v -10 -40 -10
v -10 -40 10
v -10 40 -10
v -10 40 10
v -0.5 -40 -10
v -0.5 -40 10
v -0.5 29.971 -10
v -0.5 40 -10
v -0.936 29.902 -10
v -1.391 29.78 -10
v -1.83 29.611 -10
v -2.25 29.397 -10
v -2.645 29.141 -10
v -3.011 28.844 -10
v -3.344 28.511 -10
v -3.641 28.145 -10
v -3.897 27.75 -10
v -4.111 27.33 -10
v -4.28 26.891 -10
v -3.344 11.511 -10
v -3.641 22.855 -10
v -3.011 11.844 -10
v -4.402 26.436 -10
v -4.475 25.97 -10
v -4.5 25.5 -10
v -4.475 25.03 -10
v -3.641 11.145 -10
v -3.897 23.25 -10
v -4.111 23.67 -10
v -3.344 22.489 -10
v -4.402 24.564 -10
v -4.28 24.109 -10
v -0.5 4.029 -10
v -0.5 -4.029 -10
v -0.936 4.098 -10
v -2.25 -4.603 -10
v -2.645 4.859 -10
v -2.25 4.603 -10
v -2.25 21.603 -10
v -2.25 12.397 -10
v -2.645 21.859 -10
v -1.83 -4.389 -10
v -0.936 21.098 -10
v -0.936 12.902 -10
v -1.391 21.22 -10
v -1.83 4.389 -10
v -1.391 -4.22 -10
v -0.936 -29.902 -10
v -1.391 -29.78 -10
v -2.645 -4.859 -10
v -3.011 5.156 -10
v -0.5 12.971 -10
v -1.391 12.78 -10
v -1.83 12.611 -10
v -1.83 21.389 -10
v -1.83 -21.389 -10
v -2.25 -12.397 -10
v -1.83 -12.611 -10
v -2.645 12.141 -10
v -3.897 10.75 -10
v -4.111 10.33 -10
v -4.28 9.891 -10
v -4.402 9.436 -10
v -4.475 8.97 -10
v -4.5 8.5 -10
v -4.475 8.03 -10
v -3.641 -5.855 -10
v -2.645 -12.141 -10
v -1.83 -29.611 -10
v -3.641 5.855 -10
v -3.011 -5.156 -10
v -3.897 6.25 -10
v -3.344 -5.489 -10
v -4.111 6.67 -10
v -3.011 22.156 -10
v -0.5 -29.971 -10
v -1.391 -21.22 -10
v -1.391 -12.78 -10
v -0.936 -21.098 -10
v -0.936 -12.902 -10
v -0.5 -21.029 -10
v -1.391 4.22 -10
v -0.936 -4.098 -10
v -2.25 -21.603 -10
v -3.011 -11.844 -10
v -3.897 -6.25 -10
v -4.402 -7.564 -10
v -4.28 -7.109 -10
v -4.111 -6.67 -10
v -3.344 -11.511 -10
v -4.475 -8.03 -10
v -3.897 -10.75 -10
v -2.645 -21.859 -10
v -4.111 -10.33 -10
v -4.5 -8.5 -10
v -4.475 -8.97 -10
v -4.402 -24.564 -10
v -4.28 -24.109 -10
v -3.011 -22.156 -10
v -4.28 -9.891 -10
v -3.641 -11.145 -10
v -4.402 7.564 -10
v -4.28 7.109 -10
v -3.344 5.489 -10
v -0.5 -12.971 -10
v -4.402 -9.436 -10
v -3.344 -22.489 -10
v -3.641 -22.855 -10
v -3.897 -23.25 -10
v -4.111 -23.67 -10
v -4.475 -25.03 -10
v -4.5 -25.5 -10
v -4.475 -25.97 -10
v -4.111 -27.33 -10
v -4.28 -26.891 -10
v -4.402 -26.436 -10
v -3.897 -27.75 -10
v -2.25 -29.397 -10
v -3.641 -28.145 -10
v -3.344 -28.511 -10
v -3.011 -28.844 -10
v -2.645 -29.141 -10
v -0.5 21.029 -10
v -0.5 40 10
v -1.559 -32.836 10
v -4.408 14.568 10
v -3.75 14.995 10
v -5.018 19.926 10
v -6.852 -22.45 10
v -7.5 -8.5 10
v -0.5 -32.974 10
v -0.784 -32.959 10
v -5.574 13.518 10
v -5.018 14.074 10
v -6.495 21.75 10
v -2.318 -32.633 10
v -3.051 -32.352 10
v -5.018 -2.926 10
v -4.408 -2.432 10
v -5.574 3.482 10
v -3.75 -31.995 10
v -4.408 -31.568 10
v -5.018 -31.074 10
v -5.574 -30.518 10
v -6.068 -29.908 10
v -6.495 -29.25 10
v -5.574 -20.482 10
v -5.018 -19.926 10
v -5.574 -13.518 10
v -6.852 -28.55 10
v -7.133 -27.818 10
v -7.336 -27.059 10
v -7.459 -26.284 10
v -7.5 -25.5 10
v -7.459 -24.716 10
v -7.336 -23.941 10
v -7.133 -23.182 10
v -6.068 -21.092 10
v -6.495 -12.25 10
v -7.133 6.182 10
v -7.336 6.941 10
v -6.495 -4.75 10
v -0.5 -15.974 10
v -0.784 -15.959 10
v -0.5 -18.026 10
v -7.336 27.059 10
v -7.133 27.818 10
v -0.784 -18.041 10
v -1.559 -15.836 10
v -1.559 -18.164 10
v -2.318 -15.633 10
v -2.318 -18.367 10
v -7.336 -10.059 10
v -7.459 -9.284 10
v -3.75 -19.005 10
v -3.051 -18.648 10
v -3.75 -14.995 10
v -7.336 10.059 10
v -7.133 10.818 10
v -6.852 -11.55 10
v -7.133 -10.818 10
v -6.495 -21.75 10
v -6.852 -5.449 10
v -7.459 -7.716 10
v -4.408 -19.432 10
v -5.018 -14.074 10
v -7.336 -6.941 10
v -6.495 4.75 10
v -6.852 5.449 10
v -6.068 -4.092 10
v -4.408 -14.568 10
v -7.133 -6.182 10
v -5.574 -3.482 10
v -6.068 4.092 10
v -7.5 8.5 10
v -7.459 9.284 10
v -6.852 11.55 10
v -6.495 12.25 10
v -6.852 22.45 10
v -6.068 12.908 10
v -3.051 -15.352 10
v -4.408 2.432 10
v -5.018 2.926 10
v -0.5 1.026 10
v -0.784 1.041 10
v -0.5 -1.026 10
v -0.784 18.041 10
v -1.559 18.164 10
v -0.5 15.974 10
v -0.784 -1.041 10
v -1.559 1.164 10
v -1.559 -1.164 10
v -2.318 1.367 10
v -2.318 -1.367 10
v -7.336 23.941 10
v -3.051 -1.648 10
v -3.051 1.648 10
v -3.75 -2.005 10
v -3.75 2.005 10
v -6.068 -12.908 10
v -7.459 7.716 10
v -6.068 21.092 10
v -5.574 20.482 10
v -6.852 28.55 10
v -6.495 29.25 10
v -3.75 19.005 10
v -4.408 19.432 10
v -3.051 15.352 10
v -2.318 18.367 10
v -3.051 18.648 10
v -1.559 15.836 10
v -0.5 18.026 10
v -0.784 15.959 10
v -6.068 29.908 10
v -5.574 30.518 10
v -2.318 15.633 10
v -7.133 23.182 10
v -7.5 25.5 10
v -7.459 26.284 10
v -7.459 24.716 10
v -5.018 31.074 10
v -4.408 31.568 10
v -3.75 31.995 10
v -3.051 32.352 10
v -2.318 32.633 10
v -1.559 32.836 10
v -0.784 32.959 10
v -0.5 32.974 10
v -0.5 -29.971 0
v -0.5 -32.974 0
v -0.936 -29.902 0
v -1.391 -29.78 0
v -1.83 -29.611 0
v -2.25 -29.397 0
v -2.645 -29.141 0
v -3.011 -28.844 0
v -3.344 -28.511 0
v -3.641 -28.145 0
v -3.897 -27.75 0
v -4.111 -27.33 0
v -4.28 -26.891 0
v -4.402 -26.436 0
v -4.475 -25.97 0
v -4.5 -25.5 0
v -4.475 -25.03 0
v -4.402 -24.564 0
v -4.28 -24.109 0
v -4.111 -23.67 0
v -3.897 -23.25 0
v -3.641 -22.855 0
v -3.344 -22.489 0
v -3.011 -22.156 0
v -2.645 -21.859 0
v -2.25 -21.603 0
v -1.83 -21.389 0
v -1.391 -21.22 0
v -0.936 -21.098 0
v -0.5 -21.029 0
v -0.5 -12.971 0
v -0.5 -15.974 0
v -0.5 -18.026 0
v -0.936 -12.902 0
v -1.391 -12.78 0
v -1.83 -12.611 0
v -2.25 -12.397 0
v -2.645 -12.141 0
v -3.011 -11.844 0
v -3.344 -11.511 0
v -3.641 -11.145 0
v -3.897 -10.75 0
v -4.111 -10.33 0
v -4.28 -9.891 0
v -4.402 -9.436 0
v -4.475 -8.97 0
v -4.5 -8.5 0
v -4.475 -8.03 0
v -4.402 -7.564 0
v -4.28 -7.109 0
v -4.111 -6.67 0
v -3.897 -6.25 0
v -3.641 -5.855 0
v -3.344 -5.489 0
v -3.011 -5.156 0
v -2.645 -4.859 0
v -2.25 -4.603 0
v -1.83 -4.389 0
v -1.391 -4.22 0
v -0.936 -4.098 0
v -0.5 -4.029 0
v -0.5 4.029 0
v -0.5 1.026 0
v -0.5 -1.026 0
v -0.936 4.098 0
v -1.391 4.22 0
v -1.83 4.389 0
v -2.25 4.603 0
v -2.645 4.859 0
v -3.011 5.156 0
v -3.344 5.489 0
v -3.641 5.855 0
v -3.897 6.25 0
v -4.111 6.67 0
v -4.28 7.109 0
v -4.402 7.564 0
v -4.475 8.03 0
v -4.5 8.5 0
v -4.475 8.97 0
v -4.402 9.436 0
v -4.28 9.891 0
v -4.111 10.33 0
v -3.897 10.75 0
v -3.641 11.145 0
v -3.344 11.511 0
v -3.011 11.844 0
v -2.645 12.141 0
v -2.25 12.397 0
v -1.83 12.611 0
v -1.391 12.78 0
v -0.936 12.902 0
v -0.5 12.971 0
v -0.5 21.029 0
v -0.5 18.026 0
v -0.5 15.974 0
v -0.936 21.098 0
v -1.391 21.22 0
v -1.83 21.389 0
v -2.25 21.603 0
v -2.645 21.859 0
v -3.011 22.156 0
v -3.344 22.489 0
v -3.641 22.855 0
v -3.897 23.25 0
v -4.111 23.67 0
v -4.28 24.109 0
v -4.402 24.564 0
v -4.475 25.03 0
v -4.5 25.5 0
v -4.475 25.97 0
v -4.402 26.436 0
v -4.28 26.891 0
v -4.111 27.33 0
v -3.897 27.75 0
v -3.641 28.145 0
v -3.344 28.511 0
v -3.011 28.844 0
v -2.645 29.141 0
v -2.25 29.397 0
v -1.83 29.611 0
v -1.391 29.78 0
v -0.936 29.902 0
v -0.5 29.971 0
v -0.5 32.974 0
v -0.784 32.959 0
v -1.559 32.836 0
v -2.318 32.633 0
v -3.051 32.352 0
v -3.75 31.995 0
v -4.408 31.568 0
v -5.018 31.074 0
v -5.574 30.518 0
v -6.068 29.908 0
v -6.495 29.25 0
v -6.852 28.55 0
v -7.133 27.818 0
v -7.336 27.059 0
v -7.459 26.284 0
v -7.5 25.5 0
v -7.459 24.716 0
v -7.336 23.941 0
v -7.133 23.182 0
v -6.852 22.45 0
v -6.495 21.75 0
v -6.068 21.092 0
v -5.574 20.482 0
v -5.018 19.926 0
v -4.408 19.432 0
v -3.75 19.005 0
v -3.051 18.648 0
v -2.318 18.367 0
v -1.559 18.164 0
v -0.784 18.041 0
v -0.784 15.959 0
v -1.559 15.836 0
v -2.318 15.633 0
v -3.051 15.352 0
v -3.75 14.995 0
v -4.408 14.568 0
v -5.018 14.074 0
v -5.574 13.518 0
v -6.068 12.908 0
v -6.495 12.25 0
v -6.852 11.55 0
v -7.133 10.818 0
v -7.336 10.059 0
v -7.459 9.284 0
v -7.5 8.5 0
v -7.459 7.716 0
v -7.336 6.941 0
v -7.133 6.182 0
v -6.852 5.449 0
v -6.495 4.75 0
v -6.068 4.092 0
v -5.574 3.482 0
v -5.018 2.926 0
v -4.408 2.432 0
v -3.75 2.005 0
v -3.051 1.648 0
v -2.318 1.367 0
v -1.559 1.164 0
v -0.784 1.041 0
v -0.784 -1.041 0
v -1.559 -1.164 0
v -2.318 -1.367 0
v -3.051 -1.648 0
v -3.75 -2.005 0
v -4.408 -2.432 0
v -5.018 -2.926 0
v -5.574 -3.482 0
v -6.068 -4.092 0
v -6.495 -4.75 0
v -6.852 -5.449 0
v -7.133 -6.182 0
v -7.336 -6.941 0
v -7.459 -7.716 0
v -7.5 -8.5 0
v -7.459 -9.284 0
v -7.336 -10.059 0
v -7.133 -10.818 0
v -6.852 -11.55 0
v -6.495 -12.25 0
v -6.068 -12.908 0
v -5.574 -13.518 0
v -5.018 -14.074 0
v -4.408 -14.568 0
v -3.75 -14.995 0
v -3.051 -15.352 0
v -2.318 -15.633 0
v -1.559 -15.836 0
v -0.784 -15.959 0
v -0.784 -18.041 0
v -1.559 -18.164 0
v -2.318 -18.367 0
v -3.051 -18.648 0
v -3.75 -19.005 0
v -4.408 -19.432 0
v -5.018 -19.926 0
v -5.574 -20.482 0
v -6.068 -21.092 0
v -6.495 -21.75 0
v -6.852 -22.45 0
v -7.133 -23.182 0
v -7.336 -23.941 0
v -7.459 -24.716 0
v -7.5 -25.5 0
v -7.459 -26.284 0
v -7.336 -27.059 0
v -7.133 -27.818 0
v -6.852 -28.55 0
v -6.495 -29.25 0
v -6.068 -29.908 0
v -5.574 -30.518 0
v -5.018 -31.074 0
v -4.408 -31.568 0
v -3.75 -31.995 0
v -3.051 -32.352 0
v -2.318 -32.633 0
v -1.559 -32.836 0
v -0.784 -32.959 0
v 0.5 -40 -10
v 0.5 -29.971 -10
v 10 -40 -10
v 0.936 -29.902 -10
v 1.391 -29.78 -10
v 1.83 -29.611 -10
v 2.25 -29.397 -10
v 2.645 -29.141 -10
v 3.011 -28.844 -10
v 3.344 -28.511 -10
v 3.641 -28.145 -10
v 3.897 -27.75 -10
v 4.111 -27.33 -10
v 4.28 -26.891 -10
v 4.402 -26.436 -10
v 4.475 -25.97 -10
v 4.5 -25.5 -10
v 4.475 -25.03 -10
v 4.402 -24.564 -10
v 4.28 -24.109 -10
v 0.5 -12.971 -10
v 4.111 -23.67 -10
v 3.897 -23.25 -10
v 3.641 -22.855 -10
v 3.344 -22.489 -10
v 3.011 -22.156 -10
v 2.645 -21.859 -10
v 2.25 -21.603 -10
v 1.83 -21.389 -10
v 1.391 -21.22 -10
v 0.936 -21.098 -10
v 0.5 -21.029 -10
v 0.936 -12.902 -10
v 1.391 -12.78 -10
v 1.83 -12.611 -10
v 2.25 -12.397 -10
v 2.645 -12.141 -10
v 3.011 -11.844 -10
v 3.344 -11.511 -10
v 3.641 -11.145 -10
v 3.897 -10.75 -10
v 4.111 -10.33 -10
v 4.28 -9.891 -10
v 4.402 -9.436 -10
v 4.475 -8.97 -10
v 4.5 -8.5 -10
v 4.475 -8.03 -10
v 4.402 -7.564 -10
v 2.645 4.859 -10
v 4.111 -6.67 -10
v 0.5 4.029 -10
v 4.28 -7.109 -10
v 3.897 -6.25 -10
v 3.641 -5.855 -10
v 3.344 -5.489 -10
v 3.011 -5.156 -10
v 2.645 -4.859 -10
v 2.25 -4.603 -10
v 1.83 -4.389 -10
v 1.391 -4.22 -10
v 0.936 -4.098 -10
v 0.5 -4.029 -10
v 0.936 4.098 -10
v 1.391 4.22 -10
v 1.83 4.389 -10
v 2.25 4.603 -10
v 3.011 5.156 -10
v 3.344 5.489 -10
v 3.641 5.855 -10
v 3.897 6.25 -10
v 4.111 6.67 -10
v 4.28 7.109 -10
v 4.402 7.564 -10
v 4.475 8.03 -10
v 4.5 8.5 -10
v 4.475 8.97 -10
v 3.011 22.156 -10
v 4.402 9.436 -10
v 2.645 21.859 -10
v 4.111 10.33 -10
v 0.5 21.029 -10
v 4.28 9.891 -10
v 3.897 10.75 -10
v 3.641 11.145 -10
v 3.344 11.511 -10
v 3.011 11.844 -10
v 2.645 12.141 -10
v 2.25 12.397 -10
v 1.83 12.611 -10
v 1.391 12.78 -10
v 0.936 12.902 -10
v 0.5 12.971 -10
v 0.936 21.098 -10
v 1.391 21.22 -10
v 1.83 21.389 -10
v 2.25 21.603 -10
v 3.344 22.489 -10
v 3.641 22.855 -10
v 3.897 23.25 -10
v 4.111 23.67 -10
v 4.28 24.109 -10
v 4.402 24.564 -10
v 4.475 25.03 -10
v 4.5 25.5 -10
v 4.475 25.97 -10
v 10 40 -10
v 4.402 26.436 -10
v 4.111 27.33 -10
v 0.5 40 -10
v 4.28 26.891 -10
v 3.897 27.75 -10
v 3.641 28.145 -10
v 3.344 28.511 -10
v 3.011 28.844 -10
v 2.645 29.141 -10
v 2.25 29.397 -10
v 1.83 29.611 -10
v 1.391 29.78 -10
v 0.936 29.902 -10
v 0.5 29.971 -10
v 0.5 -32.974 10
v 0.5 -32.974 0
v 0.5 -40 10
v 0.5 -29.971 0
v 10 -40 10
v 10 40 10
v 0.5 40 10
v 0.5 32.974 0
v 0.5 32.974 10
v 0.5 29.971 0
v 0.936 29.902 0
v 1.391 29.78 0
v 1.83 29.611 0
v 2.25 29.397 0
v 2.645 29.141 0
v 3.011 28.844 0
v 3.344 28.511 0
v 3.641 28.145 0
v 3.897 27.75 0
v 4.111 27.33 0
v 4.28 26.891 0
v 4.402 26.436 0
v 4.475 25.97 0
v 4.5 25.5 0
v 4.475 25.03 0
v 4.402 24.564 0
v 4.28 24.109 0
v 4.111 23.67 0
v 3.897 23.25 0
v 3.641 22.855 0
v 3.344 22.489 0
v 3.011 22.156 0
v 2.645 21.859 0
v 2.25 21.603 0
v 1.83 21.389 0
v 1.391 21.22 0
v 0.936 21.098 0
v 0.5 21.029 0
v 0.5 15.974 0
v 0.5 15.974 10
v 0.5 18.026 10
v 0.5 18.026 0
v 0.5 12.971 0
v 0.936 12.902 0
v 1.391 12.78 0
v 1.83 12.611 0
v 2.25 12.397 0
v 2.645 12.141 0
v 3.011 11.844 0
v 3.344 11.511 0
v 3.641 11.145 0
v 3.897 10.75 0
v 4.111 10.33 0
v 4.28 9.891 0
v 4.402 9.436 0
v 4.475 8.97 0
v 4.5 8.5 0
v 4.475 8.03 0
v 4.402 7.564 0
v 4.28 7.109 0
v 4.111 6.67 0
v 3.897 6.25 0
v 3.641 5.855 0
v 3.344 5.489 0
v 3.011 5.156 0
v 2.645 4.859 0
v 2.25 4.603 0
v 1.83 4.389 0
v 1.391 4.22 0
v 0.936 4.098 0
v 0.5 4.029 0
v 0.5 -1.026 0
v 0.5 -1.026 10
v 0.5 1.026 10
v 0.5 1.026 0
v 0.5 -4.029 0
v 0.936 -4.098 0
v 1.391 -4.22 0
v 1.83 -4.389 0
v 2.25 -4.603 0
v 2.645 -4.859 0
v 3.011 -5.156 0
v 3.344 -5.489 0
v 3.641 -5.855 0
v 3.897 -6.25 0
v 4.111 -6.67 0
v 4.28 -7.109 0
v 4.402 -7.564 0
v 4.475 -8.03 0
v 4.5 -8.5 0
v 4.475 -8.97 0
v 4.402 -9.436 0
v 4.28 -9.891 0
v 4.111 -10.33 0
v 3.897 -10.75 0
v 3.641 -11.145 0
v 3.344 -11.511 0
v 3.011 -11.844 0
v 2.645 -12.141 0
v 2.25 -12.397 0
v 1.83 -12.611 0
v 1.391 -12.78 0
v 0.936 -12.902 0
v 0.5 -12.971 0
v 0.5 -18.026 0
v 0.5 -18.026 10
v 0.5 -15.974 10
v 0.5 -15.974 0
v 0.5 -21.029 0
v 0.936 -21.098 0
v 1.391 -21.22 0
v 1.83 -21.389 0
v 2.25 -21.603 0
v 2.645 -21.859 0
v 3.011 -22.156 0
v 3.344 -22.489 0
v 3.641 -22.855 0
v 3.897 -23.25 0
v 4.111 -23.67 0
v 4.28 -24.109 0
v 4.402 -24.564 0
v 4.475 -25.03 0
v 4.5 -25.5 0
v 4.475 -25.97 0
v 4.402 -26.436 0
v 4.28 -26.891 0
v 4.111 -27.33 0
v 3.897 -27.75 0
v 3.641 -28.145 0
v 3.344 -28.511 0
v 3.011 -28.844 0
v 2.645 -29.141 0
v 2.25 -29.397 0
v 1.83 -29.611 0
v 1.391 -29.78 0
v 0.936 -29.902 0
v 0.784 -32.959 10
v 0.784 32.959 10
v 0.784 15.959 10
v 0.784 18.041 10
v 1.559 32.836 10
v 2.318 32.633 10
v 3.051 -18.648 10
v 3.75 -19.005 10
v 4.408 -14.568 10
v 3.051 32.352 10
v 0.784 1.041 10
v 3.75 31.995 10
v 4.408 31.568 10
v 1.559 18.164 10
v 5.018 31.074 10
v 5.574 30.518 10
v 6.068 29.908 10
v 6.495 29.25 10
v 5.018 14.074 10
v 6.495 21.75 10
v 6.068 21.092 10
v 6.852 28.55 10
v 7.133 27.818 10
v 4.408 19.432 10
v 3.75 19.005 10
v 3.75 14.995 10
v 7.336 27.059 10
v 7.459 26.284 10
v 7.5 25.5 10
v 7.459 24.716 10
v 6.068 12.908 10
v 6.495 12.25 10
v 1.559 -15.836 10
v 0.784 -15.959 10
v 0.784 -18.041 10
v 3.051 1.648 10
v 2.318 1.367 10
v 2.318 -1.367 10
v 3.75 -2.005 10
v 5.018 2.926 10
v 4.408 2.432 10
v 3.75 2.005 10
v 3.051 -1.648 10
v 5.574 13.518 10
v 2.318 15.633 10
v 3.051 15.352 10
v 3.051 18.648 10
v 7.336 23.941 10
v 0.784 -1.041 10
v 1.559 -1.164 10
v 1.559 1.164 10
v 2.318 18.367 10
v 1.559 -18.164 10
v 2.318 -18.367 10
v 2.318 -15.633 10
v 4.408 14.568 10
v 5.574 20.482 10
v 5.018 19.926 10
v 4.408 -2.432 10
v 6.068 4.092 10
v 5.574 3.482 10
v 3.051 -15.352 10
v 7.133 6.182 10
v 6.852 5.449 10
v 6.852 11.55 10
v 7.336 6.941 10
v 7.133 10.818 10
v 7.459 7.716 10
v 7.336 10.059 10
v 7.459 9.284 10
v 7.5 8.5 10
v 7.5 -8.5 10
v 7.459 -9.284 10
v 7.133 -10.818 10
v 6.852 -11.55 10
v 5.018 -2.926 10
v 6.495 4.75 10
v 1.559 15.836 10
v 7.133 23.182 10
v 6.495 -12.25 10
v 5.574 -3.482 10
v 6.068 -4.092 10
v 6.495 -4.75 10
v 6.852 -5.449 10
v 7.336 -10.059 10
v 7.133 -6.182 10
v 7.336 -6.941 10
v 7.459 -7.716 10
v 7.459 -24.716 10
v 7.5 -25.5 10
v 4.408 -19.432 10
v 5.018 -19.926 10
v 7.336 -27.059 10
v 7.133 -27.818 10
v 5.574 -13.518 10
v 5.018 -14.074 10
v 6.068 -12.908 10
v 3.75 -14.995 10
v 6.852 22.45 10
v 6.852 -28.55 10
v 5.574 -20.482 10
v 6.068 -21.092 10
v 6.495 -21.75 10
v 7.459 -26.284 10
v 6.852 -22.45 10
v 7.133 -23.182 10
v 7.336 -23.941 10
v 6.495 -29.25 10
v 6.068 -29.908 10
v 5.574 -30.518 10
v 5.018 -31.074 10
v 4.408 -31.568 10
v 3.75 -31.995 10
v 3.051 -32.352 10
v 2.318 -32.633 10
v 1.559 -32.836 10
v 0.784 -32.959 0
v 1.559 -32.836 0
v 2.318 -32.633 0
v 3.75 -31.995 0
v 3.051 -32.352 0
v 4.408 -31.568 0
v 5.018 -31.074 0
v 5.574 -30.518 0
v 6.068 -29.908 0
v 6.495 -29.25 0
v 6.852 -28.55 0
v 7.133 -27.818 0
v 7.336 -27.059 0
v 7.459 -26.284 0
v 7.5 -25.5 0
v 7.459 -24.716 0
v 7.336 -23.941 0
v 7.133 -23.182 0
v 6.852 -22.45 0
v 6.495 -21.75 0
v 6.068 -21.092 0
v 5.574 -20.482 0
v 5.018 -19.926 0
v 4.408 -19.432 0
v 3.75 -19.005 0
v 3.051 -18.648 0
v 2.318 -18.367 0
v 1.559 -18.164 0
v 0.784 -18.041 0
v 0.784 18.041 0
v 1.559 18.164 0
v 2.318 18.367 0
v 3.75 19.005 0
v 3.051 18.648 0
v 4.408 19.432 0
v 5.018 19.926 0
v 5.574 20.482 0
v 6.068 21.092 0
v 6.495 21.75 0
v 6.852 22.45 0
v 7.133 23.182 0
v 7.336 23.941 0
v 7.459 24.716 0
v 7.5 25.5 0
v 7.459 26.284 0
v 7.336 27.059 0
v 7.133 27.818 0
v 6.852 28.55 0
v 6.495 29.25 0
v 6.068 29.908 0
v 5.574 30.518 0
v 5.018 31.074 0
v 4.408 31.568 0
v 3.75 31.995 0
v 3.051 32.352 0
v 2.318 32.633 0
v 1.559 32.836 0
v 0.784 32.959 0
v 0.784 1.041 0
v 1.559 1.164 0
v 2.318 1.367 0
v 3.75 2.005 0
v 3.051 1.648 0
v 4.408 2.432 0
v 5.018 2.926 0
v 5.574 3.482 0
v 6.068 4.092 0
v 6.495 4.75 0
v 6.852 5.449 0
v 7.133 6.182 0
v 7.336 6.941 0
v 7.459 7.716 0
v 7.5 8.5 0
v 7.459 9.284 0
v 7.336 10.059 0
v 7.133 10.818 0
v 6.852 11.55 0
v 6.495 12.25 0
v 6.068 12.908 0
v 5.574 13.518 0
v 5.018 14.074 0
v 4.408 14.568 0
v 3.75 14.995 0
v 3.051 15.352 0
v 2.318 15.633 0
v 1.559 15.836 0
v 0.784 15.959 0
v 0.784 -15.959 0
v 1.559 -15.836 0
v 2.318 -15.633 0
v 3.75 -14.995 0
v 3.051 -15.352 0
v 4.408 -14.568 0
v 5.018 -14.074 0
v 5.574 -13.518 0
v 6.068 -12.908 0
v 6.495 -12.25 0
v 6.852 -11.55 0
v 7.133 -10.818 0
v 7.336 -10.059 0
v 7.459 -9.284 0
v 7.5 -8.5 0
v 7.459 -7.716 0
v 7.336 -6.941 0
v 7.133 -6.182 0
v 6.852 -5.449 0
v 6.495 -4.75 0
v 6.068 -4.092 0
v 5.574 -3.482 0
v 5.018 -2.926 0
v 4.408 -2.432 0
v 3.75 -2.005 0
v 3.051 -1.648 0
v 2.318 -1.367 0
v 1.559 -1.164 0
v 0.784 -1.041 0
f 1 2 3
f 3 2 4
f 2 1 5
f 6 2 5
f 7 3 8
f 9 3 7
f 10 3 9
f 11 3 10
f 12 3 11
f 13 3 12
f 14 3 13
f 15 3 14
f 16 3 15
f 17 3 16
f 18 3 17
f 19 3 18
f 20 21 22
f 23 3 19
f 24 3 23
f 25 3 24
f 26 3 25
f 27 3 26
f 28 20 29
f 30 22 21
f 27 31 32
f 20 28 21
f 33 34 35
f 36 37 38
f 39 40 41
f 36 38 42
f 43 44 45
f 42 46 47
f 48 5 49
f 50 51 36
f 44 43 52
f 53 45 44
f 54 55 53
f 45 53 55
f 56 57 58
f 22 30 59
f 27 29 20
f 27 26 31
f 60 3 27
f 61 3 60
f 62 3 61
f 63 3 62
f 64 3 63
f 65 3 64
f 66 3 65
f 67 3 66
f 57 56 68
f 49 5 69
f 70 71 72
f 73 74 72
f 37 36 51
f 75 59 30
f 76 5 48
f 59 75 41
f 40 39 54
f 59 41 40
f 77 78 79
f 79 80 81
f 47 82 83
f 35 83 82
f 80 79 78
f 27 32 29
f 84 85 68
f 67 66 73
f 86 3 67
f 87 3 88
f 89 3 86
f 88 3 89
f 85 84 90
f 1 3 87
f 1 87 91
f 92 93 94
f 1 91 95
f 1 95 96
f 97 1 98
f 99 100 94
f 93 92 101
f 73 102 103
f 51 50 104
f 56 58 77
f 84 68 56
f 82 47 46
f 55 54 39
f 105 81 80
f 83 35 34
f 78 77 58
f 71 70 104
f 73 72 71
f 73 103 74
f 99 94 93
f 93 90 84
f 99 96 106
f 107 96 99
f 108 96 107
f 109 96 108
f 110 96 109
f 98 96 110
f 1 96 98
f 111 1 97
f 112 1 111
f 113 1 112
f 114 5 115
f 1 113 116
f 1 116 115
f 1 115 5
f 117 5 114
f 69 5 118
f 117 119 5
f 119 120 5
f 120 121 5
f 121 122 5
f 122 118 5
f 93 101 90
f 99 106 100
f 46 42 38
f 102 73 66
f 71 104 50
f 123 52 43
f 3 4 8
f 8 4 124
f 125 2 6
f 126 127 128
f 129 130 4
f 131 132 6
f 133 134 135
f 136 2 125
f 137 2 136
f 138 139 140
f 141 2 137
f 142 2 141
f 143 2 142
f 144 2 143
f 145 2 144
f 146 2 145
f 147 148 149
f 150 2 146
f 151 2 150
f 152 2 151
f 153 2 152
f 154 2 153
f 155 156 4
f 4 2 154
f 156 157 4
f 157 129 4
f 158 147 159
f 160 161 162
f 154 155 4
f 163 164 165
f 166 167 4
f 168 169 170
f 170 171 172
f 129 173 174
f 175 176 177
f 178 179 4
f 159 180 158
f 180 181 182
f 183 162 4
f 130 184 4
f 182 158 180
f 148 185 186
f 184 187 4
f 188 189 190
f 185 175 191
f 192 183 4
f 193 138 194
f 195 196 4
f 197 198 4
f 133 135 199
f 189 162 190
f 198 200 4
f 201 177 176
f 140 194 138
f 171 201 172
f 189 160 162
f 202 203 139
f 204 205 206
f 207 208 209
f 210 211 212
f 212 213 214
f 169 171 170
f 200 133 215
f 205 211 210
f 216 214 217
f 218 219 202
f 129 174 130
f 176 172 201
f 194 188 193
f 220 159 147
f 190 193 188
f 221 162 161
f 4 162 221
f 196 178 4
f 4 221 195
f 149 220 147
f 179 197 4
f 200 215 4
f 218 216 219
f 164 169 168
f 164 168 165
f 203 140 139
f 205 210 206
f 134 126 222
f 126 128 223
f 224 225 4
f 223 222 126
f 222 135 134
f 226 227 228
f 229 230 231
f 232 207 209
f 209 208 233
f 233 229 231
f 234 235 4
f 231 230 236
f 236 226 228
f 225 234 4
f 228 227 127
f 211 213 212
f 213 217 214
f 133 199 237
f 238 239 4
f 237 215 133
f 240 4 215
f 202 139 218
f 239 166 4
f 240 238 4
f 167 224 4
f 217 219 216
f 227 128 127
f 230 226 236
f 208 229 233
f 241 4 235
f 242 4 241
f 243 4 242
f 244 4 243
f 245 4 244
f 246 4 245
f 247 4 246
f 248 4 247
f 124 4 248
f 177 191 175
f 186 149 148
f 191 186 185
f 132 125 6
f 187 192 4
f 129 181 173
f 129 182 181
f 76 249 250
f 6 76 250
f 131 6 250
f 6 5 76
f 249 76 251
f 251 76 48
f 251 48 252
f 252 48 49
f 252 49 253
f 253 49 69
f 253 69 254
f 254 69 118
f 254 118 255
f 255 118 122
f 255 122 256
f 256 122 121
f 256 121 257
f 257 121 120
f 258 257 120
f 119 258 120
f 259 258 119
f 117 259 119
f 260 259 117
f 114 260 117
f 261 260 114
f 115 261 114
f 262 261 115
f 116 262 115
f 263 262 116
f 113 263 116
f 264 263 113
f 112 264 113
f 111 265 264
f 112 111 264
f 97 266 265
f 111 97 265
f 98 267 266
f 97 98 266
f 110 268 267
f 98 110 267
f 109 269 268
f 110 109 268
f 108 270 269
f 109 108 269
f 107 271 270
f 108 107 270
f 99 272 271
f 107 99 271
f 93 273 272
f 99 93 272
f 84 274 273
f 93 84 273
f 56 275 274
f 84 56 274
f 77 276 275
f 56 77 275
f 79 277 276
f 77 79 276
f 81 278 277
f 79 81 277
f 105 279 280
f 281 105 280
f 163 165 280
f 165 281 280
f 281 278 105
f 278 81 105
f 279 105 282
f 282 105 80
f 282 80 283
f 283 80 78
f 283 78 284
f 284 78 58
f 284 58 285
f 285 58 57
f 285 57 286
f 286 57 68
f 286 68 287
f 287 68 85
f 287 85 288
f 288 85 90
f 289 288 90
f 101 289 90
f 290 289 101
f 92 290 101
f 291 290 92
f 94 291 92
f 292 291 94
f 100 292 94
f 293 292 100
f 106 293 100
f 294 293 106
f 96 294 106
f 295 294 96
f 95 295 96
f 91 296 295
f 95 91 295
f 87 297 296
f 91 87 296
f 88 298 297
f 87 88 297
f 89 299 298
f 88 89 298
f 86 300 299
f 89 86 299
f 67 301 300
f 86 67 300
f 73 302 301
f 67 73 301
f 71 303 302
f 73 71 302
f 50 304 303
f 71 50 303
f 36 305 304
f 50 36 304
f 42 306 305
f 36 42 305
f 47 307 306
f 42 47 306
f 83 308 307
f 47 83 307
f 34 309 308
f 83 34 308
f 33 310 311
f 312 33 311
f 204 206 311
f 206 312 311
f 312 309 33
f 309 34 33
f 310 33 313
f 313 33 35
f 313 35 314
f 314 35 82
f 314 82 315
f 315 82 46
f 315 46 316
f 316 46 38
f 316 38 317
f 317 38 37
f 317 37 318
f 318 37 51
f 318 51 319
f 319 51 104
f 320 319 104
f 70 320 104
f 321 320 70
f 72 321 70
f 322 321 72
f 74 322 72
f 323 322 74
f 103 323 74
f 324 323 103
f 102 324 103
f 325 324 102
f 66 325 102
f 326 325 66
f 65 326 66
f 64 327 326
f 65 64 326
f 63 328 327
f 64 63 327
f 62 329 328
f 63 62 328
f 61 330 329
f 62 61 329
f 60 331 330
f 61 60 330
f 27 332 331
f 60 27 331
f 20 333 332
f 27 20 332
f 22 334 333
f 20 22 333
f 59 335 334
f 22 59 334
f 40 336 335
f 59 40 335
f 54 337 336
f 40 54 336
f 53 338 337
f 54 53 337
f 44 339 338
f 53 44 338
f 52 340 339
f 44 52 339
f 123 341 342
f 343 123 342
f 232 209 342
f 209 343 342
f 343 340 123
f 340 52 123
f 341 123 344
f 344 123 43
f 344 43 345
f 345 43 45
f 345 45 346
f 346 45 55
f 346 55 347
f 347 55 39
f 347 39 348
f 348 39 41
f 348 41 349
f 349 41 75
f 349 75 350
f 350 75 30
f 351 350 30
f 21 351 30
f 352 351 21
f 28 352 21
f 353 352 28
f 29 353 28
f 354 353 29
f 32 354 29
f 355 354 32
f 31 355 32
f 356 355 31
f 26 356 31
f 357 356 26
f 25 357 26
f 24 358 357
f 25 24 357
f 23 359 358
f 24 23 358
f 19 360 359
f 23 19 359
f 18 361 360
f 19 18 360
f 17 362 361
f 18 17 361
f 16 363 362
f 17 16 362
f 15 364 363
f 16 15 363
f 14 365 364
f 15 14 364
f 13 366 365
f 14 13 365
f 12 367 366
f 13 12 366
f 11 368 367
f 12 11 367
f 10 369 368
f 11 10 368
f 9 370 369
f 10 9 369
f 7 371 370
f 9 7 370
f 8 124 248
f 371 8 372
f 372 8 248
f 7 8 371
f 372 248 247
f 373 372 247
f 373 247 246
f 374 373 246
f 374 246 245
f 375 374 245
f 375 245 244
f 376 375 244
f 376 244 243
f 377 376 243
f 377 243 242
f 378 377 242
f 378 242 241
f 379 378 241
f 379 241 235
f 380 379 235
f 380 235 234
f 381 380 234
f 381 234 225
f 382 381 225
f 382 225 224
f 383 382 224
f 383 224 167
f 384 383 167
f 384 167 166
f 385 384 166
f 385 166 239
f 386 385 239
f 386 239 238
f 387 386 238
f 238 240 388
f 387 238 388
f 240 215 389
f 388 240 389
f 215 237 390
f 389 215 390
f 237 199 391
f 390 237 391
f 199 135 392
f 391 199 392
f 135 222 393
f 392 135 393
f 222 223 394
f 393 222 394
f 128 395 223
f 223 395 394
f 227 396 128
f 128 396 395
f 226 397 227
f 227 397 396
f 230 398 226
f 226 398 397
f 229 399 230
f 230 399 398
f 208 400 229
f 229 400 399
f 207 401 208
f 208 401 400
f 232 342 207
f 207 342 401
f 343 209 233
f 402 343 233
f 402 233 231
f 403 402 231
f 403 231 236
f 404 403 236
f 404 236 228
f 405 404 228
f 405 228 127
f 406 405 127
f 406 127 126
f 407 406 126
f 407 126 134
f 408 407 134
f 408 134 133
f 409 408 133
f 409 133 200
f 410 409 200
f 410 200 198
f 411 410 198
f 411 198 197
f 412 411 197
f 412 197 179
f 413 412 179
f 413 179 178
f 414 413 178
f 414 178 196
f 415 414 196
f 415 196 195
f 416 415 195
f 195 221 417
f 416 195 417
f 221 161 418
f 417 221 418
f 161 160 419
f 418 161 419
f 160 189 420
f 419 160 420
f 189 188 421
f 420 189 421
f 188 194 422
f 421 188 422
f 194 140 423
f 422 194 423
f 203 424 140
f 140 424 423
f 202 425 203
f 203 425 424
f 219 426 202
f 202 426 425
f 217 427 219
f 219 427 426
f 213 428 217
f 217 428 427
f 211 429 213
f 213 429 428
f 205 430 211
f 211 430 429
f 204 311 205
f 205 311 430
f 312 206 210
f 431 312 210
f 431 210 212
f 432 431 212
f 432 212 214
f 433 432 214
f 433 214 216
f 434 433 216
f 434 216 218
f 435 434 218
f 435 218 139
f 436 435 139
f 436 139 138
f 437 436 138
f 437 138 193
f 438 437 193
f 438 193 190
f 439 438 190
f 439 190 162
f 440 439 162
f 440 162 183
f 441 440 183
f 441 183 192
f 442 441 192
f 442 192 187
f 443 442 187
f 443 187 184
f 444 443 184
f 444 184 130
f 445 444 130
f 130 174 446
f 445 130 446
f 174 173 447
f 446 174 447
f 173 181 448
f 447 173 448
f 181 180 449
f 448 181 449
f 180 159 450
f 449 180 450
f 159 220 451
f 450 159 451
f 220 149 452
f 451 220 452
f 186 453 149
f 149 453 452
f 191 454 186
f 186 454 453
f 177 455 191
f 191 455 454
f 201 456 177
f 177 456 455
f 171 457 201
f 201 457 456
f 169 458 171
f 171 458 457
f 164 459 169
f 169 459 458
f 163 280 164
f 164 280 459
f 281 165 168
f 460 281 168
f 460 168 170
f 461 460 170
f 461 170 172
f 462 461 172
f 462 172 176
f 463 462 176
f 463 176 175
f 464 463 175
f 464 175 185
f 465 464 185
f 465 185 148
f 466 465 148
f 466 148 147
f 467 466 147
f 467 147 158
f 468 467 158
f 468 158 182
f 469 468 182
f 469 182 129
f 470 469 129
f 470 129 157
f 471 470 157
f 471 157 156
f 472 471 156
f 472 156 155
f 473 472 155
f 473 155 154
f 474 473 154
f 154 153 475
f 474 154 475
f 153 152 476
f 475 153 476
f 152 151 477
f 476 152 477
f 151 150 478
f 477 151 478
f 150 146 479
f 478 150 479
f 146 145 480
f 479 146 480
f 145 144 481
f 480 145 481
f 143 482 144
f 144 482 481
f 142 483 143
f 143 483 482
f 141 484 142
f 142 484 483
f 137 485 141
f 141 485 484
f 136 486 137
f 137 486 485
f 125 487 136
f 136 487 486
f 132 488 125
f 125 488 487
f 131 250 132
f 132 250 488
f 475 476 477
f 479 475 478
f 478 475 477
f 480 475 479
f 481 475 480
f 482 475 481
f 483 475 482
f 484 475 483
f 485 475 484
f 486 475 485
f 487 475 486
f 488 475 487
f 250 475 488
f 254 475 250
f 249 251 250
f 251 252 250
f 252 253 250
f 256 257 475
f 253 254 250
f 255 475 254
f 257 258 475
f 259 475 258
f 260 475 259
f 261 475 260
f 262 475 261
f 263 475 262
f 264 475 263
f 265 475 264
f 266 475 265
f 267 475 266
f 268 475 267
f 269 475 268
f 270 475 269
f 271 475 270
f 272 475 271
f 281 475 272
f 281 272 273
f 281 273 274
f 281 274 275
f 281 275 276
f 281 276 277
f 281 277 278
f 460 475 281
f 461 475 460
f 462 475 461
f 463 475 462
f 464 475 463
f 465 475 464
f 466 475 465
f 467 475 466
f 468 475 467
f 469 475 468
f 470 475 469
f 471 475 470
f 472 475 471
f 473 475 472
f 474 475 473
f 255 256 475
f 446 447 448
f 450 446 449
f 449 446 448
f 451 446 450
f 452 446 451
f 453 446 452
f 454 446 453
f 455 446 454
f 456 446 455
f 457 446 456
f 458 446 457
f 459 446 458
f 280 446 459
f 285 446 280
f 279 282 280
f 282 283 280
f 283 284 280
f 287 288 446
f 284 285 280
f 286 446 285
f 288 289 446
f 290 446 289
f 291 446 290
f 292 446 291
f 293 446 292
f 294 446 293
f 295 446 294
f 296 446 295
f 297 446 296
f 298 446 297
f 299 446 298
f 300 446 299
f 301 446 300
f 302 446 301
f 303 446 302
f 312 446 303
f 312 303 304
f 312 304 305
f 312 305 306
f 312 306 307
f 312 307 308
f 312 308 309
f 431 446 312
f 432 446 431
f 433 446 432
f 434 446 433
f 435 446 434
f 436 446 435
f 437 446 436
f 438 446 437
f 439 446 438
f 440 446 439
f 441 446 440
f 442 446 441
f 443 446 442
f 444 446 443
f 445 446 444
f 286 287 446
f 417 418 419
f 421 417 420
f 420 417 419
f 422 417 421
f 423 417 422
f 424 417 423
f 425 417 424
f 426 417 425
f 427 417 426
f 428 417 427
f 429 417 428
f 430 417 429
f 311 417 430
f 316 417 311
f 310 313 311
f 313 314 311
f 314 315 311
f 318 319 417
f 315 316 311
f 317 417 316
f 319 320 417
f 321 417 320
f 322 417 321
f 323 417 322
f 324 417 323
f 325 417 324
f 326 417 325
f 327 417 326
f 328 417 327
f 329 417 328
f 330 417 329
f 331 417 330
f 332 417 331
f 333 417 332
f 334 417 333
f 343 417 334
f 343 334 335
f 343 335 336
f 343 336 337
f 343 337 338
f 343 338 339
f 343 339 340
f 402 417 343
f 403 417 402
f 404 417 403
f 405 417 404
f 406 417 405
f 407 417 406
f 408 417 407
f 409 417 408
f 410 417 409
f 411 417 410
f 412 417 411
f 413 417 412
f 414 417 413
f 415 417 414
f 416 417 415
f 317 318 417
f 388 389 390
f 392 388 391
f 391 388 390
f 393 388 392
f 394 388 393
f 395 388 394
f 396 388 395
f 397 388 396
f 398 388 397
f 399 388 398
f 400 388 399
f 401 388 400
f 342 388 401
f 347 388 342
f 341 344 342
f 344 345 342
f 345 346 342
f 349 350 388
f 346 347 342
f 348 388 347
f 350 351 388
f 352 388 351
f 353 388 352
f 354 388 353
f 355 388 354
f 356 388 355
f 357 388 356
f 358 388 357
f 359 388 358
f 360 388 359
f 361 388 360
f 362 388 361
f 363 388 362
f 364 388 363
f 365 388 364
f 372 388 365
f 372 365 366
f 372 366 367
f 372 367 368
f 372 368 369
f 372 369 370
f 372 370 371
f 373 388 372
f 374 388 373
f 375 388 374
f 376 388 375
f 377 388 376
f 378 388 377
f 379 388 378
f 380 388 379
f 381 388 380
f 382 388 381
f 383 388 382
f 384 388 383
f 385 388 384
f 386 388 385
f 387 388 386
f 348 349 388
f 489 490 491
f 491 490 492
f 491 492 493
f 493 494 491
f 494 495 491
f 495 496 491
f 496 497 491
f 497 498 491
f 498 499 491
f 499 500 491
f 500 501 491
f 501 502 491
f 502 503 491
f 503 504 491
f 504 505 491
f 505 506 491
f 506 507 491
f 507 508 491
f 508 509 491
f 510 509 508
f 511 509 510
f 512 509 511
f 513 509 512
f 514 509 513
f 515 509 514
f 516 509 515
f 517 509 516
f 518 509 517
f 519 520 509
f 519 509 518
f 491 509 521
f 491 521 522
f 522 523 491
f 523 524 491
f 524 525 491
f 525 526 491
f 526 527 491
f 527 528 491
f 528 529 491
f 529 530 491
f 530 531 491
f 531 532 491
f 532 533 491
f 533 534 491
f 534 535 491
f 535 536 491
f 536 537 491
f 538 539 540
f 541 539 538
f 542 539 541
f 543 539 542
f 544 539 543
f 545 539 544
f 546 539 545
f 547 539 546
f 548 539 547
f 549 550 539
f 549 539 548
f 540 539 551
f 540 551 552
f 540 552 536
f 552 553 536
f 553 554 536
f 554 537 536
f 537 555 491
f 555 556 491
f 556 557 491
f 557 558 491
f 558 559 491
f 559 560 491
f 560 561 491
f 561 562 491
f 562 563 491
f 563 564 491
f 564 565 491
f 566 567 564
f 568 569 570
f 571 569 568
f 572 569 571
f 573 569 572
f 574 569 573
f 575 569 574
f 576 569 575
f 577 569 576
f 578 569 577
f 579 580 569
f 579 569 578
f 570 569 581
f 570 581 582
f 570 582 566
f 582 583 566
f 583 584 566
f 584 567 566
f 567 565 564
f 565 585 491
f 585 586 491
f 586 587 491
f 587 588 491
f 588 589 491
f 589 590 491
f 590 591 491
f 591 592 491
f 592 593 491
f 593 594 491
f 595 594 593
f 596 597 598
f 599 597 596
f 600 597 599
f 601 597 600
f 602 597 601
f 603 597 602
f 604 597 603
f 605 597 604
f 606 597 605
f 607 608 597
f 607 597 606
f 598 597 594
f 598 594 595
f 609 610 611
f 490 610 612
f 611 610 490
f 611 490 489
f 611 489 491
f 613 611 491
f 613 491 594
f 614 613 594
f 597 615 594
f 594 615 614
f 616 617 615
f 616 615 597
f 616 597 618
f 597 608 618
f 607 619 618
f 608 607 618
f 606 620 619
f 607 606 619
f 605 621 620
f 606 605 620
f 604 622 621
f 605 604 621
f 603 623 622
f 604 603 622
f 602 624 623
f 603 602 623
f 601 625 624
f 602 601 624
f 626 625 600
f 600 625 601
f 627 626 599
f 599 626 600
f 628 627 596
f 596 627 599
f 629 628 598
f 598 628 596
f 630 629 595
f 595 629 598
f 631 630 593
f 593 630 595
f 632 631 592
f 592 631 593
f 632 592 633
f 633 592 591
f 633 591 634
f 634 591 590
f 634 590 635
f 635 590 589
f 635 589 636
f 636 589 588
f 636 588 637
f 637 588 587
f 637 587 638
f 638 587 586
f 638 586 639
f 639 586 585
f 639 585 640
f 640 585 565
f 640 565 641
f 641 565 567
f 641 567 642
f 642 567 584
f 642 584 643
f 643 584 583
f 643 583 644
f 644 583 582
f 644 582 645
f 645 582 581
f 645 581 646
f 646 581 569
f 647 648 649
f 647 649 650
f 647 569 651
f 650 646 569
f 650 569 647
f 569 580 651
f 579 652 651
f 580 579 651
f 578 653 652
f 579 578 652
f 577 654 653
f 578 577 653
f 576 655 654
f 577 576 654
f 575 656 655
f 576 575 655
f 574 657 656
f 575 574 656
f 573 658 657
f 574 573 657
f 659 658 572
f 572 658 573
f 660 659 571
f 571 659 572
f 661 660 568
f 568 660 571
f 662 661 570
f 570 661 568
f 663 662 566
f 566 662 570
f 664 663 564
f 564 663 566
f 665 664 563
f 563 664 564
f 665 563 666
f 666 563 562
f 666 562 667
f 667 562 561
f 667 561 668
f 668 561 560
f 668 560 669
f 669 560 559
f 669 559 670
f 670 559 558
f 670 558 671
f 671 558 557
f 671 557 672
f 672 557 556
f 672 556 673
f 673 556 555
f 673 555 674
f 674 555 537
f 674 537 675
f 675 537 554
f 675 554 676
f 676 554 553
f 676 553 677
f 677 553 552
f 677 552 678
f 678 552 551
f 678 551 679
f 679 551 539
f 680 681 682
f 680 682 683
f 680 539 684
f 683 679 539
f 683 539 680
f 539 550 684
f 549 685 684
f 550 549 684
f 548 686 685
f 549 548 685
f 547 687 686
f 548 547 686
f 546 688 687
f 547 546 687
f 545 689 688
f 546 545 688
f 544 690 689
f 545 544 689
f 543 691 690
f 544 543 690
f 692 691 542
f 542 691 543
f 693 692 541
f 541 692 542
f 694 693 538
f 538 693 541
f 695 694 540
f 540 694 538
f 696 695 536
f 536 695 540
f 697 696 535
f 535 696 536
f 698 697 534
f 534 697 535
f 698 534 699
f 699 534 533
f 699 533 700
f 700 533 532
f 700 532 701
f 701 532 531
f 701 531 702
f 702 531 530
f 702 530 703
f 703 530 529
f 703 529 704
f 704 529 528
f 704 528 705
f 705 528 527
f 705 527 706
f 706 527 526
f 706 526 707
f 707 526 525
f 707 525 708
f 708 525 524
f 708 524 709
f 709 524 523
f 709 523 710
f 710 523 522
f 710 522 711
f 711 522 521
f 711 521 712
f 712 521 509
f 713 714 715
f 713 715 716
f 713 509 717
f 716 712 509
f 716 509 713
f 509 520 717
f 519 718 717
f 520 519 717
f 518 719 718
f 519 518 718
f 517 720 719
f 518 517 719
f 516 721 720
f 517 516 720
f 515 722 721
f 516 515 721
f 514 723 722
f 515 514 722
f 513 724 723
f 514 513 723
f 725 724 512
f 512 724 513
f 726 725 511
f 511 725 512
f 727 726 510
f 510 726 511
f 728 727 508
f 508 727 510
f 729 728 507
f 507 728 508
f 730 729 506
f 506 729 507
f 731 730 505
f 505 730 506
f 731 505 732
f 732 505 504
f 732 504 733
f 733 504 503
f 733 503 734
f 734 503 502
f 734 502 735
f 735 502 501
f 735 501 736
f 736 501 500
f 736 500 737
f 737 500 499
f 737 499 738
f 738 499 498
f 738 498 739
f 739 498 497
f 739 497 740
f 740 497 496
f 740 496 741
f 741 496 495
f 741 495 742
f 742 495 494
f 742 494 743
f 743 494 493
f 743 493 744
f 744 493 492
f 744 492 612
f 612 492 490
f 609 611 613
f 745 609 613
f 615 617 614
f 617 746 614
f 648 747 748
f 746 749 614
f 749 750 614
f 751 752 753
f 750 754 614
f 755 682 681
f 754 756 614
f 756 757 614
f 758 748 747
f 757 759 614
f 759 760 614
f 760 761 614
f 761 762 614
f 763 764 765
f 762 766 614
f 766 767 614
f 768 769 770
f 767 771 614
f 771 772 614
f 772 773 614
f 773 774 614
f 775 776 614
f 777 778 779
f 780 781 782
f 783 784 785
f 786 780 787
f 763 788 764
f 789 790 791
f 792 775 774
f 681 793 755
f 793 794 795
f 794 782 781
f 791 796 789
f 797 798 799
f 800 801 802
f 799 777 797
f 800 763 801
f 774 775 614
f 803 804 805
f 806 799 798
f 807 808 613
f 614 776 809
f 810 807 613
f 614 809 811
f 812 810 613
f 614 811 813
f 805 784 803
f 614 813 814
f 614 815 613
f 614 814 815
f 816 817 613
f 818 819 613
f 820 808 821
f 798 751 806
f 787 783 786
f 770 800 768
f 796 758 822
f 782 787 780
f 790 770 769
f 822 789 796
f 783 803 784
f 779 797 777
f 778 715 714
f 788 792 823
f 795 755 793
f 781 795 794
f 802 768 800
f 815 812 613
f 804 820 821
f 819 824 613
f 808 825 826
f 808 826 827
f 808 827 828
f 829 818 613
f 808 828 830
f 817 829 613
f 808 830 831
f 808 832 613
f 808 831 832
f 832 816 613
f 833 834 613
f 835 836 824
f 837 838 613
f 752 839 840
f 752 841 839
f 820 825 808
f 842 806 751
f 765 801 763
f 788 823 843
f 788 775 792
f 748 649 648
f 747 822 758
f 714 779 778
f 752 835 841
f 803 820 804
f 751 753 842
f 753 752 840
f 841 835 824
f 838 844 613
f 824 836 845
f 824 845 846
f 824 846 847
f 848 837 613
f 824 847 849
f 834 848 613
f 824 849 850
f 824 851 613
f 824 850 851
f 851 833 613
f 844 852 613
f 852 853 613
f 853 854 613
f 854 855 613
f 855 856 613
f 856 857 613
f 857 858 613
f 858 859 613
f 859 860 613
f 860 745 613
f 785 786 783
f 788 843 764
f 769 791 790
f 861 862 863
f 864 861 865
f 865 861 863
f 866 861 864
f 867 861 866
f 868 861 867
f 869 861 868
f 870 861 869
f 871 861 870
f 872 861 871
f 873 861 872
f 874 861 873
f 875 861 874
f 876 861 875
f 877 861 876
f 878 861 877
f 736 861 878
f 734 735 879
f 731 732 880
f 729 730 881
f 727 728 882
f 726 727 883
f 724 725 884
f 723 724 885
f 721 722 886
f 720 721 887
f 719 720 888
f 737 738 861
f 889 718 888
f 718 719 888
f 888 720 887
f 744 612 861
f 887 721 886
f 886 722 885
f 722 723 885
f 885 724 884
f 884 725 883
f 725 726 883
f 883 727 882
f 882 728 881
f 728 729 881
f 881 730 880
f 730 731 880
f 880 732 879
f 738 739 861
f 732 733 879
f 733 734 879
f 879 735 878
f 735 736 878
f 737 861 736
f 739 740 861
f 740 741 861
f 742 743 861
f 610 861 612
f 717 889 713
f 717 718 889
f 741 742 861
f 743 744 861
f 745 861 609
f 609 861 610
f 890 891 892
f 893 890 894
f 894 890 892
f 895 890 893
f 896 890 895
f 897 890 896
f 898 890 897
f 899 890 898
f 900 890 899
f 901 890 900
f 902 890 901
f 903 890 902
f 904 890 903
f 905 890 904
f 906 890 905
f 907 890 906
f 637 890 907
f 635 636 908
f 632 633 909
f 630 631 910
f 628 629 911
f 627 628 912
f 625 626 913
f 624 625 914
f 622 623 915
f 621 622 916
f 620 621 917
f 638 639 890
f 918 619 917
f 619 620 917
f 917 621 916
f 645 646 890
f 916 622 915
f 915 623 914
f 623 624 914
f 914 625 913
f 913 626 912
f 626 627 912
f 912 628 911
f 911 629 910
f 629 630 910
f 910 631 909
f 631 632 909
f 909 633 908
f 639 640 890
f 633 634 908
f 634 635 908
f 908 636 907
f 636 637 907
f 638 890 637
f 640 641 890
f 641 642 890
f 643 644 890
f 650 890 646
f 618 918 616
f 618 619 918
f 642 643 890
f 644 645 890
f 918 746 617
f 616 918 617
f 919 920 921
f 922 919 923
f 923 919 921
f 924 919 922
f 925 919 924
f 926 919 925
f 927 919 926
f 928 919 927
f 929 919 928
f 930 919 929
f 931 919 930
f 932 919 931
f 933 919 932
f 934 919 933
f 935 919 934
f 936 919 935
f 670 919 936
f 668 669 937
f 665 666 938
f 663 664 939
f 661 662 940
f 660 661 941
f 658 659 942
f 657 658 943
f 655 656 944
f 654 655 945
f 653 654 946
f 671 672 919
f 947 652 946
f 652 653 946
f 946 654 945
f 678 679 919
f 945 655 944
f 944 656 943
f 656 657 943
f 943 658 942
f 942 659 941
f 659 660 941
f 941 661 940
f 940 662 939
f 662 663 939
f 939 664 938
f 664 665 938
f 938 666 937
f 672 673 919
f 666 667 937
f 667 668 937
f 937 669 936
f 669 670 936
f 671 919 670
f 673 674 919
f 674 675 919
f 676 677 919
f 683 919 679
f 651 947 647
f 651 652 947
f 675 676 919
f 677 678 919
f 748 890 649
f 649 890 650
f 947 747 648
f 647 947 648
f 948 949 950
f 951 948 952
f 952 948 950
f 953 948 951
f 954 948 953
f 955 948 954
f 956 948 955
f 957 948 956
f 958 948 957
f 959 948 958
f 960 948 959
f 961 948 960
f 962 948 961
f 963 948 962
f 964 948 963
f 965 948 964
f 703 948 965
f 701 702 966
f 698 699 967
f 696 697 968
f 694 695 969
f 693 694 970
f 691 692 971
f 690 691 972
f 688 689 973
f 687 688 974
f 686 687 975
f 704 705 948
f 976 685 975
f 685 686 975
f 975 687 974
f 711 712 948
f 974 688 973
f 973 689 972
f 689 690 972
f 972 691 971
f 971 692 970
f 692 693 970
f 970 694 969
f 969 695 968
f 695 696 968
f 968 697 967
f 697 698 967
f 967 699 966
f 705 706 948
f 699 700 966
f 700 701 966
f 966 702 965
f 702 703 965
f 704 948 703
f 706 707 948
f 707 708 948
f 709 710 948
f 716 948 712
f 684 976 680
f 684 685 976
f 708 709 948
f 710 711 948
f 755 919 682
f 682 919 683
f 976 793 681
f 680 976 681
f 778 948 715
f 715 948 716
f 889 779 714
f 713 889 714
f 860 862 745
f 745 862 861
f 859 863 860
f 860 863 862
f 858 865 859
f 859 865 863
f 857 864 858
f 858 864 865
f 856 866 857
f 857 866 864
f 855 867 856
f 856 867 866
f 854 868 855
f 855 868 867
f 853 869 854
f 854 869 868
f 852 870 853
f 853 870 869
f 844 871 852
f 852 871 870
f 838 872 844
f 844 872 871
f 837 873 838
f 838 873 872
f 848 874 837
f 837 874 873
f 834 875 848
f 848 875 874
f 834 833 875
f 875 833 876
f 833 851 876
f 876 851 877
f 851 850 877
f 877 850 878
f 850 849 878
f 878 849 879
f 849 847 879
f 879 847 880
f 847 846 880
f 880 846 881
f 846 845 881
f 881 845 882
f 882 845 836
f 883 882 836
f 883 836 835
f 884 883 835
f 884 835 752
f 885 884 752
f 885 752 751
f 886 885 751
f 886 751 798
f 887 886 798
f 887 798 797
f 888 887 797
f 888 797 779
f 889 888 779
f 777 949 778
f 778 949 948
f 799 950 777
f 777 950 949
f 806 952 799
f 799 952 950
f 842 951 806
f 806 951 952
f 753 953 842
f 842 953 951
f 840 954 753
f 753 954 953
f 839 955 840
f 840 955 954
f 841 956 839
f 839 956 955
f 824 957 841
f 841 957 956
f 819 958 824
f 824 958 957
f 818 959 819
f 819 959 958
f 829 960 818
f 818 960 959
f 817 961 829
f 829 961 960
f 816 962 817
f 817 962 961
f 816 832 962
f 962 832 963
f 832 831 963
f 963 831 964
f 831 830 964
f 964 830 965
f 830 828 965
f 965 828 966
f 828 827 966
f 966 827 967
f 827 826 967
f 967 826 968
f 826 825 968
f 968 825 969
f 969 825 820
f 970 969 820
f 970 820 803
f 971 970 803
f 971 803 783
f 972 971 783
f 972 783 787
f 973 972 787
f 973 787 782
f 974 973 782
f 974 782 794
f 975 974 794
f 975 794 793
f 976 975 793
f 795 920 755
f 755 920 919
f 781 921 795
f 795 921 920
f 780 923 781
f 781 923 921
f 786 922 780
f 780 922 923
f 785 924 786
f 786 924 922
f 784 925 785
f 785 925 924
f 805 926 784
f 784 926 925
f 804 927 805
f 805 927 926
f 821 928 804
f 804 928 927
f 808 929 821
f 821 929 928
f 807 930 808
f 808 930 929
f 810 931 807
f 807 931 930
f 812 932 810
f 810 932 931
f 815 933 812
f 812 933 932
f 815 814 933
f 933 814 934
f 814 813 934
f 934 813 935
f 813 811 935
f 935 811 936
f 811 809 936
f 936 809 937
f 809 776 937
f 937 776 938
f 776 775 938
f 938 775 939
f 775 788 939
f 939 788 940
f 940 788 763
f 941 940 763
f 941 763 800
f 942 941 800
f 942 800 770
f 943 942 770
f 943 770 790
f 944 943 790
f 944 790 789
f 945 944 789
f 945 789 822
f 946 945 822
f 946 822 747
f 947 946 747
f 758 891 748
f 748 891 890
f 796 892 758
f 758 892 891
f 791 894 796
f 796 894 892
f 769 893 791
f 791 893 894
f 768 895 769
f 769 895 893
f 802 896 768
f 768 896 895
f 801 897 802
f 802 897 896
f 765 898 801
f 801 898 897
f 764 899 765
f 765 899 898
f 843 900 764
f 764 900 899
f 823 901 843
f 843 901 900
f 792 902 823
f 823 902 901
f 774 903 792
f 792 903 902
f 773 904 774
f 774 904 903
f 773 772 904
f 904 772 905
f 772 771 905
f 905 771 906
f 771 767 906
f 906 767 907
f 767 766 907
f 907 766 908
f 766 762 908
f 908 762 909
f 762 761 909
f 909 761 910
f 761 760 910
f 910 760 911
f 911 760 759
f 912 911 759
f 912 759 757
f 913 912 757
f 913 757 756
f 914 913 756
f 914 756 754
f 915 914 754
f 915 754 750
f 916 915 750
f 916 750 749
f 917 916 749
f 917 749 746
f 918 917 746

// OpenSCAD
$fn=60;
difference(){
cube([20,80,20],center=true);
cube([1,100,100],center=true);
for(i=[-1.5,-0.5,0.5,1.5])
translate([0,i*17,0])
{
cylinder(r=15/2,h=20);
cylinder(r=9/2,h=40,center=true);
}
}
